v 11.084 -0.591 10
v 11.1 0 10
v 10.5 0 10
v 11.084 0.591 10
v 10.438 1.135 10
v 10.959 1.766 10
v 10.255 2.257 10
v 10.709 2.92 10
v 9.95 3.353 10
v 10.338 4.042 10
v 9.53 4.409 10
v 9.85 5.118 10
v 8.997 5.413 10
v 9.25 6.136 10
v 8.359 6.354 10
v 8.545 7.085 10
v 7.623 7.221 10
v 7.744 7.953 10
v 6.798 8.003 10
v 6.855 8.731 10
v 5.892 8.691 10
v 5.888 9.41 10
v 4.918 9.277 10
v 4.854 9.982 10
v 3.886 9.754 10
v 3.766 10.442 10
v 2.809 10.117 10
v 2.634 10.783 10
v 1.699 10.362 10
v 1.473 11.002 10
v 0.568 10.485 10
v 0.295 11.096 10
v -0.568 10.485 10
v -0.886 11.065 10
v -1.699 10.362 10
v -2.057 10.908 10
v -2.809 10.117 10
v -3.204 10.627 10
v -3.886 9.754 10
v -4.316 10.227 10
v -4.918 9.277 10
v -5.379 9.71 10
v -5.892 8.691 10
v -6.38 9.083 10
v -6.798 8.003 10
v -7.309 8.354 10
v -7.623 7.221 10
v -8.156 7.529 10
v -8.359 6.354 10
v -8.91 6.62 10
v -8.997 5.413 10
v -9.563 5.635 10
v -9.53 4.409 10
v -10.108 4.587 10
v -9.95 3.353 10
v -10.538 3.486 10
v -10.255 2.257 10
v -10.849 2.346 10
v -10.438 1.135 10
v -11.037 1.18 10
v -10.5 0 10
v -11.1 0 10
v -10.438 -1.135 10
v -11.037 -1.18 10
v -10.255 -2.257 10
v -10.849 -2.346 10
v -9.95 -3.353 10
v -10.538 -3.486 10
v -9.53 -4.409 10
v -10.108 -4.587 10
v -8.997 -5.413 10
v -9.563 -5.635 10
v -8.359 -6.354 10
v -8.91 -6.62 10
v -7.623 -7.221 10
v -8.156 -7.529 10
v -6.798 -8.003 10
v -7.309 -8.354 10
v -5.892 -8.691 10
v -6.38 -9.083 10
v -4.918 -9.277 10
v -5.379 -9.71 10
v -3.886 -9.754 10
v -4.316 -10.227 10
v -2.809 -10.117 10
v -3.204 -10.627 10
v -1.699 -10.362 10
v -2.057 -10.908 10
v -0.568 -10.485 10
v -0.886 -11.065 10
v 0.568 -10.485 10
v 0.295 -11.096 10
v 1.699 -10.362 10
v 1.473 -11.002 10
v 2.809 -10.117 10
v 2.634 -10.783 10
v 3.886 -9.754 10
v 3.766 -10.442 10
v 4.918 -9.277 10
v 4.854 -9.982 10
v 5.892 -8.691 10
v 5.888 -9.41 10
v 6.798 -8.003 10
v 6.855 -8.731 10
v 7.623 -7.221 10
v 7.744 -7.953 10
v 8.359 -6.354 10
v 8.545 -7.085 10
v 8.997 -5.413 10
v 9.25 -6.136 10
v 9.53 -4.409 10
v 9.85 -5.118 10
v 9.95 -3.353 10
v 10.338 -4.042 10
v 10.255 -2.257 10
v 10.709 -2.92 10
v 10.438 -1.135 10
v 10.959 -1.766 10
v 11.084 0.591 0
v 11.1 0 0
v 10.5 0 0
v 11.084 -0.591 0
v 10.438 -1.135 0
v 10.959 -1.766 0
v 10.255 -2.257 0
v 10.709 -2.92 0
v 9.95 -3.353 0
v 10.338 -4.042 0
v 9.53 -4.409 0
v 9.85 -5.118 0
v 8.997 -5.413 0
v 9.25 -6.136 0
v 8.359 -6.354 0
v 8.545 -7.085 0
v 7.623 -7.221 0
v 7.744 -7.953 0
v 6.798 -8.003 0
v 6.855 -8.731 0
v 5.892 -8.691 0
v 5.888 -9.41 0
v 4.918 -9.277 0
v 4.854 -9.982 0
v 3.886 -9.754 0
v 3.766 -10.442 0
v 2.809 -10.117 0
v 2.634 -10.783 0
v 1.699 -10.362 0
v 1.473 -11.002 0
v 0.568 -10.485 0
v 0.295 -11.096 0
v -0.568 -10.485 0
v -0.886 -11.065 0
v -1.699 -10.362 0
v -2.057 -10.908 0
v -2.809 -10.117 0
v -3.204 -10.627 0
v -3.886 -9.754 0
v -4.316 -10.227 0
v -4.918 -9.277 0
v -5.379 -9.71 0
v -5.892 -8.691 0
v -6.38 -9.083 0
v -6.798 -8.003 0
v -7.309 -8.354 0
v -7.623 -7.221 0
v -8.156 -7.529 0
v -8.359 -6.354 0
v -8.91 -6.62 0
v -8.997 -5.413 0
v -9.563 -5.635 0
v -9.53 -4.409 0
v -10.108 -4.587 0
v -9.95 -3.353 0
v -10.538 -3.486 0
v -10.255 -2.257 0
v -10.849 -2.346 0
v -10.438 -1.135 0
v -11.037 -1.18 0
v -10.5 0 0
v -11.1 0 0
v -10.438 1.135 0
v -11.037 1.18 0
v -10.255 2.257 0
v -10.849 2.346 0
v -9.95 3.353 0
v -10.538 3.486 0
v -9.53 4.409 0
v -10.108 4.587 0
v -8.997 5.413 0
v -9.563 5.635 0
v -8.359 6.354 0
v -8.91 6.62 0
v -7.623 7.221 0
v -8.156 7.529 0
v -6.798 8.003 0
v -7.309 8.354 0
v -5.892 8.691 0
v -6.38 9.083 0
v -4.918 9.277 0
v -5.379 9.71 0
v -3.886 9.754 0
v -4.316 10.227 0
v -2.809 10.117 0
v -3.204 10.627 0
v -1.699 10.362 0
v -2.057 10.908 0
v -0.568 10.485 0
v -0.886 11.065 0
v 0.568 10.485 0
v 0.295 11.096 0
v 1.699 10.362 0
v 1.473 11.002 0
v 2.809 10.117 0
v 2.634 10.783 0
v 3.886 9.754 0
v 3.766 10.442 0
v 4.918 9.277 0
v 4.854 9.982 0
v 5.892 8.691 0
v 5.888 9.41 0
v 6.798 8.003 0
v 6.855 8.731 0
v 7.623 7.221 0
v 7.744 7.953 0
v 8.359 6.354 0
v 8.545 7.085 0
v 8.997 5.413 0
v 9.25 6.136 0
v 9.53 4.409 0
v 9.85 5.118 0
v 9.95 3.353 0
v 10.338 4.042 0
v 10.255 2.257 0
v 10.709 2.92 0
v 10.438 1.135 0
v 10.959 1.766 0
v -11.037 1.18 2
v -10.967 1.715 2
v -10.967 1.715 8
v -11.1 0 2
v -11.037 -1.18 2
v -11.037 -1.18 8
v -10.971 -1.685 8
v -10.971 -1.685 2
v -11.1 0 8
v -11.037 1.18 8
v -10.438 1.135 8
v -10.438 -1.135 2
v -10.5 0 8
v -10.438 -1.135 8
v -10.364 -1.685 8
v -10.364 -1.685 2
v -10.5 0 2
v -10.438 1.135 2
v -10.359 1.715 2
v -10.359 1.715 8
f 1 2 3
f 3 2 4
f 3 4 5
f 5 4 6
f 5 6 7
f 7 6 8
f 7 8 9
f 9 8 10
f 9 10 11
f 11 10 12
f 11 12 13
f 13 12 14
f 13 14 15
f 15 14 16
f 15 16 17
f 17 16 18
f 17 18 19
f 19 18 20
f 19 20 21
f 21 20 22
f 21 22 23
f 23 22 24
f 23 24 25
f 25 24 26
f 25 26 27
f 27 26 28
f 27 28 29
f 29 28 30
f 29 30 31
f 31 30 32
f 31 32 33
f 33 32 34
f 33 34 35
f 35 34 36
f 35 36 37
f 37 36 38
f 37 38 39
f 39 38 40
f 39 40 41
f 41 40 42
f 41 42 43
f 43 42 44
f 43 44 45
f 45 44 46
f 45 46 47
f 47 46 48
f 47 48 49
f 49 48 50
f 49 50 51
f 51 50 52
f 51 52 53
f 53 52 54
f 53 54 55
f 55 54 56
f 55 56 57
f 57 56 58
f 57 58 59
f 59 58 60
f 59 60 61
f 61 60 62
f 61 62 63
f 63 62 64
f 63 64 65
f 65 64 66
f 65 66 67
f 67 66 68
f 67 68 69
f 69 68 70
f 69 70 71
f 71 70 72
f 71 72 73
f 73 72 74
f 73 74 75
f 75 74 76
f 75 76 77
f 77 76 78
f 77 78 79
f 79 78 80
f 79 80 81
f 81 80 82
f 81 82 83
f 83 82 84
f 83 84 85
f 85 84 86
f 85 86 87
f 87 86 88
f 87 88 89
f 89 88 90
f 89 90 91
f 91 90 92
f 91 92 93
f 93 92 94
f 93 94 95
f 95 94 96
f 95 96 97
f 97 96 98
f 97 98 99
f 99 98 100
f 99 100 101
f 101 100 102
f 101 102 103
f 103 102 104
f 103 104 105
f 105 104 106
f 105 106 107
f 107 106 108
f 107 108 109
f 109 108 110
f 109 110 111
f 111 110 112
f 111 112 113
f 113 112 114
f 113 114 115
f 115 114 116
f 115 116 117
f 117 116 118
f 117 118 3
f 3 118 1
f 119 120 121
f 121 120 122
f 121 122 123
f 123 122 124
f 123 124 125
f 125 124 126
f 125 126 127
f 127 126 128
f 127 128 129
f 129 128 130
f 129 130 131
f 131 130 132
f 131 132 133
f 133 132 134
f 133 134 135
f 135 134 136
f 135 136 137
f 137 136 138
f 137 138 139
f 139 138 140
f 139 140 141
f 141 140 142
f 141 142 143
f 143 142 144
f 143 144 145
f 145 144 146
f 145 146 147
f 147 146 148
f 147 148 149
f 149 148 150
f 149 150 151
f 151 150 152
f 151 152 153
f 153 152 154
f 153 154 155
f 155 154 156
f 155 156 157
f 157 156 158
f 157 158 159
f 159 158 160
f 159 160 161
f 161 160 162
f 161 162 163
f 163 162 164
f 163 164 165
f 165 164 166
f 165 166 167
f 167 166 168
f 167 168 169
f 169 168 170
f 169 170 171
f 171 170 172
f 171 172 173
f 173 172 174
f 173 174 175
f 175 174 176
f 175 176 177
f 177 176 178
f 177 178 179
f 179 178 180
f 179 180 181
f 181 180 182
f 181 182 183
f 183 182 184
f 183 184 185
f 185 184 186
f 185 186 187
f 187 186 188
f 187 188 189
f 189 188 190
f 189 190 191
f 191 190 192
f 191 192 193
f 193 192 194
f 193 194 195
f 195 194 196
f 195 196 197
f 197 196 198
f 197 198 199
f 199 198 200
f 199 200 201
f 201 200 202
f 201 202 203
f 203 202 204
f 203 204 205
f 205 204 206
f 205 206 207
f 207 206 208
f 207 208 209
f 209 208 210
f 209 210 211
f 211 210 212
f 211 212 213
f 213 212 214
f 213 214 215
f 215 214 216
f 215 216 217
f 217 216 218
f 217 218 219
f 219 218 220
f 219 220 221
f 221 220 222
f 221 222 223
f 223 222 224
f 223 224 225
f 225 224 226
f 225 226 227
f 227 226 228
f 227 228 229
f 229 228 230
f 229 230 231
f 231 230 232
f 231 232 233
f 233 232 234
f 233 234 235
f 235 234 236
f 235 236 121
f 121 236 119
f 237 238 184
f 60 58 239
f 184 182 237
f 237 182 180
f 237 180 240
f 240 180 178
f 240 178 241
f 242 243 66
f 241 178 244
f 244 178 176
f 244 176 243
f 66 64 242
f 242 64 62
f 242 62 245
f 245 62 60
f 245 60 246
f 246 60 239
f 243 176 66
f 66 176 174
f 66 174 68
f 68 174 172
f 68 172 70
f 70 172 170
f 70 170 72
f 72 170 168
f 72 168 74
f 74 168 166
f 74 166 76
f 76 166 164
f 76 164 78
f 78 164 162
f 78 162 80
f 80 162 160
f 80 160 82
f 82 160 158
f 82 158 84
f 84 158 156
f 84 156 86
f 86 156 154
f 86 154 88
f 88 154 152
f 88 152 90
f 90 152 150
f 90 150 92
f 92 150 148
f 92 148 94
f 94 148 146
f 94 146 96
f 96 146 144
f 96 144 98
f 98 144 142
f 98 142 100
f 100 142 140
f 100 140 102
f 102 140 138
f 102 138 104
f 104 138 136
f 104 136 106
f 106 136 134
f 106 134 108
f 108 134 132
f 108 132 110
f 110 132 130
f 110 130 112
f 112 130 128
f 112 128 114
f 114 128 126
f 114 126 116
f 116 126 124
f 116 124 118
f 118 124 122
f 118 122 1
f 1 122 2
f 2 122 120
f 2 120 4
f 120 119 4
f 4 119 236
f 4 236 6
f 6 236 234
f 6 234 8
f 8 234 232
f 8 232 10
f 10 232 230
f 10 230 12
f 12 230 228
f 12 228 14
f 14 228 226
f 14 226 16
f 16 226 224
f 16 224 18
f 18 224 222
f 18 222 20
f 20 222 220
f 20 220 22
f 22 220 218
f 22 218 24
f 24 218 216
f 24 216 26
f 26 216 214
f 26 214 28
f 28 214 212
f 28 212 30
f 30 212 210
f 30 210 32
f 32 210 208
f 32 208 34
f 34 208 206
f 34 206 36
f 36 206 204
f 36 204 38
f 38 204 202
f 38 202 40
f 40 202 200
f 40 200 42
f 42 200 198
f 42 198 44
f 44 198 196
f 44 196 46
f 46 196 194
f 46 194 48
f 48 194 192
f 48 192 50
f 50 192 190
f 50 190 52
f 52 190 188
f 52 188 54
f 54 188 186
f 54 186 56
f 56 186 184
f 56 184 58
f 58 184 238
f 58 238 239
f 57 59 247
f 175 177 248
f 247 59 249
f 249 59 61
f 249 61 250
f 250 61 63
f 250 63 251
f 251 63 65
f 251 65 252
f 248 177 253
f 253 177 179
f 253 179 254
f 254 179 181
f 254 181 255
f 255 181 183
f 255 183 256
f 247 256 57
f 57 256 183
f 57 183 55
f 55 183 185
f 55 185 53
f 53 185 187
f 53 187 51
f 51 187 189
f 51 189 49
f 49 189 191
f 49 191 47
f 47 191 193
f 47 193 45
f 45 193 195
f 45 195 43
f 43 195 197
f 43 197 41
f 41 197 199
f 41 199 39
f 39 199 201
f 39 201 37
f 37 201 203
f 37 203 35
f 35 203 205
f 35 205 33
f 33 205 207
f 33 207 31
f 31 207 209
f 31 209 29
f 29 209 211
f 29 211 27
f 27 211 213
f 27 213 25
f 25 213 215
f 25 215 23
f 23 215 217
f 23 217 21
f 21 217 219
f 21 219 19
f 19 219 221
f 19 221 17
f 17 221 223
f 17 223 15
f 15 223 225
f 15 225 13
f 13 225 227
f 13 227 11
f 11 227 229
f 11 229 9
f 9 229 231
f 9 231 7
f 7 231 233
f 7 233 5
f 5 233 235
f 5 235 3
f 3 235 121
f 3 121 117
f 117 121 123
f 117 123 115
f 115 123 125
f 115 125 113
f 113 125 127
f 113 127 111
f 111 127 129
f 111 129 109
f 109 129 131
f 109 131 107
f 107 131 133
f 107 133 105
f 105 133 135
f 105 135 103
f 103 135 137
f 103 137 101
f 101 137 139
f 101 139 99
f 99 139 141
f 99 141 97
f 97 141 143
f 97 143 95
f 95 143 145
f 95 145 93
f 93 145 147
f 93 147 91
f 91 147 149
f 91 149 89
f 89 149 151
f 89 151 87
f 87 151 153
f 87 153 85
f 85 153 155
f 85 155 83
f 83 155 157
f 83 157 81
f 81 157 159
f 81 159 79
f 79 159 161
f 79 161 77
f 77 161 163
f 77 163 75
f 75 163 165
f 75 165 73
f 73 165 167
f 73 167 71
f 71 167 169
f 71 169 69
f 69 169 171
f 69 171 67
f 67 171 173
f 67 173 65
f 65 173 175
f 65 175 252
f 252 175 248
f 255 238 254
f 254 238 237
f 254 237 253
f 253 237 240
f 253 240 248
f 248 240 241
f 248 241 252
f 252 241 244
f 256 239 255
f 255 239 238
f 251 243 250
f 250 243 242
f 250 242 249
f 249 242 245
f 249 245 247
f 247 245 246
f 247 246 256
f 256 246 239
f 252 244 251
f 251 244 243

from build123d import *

# Parameters (mm, degrees)
SKETCH_1_R          = 11.1
SKETCH_1_R_2        = 10.5
EXTRUDE_1_DEPTH     = 10
SKETCH_3_W          = 6
SKETCH_3_H          = 3.4
CUT_EXTRUDE_1_DEPTH = 1.5


with BuildPart() as part:
    # 草图1 → 凸台-拉伸1 (new body)
    with BuildSketch(Plane.XY):
        Circle(SKETCH_1_R)
        Circle(SKETCH_1_R_2, mode=Mode.SUBTRACT)
    extrude(amount=EXTRUDE_1_DEPTH)

    # 草图3 → 切除-拉伸1 (cut)
    with BuildSketch(Plane.ZY.offset(11.1)):
        with Locations((5, 0.014841624)):
            Rectangle(SKETCH_3_W, SKETCH_3_H)
    extrude(amount=-CUT_EXTRUDE_1_DEPTH, mode=Mode.SUBTRACT)


solid = part.part
